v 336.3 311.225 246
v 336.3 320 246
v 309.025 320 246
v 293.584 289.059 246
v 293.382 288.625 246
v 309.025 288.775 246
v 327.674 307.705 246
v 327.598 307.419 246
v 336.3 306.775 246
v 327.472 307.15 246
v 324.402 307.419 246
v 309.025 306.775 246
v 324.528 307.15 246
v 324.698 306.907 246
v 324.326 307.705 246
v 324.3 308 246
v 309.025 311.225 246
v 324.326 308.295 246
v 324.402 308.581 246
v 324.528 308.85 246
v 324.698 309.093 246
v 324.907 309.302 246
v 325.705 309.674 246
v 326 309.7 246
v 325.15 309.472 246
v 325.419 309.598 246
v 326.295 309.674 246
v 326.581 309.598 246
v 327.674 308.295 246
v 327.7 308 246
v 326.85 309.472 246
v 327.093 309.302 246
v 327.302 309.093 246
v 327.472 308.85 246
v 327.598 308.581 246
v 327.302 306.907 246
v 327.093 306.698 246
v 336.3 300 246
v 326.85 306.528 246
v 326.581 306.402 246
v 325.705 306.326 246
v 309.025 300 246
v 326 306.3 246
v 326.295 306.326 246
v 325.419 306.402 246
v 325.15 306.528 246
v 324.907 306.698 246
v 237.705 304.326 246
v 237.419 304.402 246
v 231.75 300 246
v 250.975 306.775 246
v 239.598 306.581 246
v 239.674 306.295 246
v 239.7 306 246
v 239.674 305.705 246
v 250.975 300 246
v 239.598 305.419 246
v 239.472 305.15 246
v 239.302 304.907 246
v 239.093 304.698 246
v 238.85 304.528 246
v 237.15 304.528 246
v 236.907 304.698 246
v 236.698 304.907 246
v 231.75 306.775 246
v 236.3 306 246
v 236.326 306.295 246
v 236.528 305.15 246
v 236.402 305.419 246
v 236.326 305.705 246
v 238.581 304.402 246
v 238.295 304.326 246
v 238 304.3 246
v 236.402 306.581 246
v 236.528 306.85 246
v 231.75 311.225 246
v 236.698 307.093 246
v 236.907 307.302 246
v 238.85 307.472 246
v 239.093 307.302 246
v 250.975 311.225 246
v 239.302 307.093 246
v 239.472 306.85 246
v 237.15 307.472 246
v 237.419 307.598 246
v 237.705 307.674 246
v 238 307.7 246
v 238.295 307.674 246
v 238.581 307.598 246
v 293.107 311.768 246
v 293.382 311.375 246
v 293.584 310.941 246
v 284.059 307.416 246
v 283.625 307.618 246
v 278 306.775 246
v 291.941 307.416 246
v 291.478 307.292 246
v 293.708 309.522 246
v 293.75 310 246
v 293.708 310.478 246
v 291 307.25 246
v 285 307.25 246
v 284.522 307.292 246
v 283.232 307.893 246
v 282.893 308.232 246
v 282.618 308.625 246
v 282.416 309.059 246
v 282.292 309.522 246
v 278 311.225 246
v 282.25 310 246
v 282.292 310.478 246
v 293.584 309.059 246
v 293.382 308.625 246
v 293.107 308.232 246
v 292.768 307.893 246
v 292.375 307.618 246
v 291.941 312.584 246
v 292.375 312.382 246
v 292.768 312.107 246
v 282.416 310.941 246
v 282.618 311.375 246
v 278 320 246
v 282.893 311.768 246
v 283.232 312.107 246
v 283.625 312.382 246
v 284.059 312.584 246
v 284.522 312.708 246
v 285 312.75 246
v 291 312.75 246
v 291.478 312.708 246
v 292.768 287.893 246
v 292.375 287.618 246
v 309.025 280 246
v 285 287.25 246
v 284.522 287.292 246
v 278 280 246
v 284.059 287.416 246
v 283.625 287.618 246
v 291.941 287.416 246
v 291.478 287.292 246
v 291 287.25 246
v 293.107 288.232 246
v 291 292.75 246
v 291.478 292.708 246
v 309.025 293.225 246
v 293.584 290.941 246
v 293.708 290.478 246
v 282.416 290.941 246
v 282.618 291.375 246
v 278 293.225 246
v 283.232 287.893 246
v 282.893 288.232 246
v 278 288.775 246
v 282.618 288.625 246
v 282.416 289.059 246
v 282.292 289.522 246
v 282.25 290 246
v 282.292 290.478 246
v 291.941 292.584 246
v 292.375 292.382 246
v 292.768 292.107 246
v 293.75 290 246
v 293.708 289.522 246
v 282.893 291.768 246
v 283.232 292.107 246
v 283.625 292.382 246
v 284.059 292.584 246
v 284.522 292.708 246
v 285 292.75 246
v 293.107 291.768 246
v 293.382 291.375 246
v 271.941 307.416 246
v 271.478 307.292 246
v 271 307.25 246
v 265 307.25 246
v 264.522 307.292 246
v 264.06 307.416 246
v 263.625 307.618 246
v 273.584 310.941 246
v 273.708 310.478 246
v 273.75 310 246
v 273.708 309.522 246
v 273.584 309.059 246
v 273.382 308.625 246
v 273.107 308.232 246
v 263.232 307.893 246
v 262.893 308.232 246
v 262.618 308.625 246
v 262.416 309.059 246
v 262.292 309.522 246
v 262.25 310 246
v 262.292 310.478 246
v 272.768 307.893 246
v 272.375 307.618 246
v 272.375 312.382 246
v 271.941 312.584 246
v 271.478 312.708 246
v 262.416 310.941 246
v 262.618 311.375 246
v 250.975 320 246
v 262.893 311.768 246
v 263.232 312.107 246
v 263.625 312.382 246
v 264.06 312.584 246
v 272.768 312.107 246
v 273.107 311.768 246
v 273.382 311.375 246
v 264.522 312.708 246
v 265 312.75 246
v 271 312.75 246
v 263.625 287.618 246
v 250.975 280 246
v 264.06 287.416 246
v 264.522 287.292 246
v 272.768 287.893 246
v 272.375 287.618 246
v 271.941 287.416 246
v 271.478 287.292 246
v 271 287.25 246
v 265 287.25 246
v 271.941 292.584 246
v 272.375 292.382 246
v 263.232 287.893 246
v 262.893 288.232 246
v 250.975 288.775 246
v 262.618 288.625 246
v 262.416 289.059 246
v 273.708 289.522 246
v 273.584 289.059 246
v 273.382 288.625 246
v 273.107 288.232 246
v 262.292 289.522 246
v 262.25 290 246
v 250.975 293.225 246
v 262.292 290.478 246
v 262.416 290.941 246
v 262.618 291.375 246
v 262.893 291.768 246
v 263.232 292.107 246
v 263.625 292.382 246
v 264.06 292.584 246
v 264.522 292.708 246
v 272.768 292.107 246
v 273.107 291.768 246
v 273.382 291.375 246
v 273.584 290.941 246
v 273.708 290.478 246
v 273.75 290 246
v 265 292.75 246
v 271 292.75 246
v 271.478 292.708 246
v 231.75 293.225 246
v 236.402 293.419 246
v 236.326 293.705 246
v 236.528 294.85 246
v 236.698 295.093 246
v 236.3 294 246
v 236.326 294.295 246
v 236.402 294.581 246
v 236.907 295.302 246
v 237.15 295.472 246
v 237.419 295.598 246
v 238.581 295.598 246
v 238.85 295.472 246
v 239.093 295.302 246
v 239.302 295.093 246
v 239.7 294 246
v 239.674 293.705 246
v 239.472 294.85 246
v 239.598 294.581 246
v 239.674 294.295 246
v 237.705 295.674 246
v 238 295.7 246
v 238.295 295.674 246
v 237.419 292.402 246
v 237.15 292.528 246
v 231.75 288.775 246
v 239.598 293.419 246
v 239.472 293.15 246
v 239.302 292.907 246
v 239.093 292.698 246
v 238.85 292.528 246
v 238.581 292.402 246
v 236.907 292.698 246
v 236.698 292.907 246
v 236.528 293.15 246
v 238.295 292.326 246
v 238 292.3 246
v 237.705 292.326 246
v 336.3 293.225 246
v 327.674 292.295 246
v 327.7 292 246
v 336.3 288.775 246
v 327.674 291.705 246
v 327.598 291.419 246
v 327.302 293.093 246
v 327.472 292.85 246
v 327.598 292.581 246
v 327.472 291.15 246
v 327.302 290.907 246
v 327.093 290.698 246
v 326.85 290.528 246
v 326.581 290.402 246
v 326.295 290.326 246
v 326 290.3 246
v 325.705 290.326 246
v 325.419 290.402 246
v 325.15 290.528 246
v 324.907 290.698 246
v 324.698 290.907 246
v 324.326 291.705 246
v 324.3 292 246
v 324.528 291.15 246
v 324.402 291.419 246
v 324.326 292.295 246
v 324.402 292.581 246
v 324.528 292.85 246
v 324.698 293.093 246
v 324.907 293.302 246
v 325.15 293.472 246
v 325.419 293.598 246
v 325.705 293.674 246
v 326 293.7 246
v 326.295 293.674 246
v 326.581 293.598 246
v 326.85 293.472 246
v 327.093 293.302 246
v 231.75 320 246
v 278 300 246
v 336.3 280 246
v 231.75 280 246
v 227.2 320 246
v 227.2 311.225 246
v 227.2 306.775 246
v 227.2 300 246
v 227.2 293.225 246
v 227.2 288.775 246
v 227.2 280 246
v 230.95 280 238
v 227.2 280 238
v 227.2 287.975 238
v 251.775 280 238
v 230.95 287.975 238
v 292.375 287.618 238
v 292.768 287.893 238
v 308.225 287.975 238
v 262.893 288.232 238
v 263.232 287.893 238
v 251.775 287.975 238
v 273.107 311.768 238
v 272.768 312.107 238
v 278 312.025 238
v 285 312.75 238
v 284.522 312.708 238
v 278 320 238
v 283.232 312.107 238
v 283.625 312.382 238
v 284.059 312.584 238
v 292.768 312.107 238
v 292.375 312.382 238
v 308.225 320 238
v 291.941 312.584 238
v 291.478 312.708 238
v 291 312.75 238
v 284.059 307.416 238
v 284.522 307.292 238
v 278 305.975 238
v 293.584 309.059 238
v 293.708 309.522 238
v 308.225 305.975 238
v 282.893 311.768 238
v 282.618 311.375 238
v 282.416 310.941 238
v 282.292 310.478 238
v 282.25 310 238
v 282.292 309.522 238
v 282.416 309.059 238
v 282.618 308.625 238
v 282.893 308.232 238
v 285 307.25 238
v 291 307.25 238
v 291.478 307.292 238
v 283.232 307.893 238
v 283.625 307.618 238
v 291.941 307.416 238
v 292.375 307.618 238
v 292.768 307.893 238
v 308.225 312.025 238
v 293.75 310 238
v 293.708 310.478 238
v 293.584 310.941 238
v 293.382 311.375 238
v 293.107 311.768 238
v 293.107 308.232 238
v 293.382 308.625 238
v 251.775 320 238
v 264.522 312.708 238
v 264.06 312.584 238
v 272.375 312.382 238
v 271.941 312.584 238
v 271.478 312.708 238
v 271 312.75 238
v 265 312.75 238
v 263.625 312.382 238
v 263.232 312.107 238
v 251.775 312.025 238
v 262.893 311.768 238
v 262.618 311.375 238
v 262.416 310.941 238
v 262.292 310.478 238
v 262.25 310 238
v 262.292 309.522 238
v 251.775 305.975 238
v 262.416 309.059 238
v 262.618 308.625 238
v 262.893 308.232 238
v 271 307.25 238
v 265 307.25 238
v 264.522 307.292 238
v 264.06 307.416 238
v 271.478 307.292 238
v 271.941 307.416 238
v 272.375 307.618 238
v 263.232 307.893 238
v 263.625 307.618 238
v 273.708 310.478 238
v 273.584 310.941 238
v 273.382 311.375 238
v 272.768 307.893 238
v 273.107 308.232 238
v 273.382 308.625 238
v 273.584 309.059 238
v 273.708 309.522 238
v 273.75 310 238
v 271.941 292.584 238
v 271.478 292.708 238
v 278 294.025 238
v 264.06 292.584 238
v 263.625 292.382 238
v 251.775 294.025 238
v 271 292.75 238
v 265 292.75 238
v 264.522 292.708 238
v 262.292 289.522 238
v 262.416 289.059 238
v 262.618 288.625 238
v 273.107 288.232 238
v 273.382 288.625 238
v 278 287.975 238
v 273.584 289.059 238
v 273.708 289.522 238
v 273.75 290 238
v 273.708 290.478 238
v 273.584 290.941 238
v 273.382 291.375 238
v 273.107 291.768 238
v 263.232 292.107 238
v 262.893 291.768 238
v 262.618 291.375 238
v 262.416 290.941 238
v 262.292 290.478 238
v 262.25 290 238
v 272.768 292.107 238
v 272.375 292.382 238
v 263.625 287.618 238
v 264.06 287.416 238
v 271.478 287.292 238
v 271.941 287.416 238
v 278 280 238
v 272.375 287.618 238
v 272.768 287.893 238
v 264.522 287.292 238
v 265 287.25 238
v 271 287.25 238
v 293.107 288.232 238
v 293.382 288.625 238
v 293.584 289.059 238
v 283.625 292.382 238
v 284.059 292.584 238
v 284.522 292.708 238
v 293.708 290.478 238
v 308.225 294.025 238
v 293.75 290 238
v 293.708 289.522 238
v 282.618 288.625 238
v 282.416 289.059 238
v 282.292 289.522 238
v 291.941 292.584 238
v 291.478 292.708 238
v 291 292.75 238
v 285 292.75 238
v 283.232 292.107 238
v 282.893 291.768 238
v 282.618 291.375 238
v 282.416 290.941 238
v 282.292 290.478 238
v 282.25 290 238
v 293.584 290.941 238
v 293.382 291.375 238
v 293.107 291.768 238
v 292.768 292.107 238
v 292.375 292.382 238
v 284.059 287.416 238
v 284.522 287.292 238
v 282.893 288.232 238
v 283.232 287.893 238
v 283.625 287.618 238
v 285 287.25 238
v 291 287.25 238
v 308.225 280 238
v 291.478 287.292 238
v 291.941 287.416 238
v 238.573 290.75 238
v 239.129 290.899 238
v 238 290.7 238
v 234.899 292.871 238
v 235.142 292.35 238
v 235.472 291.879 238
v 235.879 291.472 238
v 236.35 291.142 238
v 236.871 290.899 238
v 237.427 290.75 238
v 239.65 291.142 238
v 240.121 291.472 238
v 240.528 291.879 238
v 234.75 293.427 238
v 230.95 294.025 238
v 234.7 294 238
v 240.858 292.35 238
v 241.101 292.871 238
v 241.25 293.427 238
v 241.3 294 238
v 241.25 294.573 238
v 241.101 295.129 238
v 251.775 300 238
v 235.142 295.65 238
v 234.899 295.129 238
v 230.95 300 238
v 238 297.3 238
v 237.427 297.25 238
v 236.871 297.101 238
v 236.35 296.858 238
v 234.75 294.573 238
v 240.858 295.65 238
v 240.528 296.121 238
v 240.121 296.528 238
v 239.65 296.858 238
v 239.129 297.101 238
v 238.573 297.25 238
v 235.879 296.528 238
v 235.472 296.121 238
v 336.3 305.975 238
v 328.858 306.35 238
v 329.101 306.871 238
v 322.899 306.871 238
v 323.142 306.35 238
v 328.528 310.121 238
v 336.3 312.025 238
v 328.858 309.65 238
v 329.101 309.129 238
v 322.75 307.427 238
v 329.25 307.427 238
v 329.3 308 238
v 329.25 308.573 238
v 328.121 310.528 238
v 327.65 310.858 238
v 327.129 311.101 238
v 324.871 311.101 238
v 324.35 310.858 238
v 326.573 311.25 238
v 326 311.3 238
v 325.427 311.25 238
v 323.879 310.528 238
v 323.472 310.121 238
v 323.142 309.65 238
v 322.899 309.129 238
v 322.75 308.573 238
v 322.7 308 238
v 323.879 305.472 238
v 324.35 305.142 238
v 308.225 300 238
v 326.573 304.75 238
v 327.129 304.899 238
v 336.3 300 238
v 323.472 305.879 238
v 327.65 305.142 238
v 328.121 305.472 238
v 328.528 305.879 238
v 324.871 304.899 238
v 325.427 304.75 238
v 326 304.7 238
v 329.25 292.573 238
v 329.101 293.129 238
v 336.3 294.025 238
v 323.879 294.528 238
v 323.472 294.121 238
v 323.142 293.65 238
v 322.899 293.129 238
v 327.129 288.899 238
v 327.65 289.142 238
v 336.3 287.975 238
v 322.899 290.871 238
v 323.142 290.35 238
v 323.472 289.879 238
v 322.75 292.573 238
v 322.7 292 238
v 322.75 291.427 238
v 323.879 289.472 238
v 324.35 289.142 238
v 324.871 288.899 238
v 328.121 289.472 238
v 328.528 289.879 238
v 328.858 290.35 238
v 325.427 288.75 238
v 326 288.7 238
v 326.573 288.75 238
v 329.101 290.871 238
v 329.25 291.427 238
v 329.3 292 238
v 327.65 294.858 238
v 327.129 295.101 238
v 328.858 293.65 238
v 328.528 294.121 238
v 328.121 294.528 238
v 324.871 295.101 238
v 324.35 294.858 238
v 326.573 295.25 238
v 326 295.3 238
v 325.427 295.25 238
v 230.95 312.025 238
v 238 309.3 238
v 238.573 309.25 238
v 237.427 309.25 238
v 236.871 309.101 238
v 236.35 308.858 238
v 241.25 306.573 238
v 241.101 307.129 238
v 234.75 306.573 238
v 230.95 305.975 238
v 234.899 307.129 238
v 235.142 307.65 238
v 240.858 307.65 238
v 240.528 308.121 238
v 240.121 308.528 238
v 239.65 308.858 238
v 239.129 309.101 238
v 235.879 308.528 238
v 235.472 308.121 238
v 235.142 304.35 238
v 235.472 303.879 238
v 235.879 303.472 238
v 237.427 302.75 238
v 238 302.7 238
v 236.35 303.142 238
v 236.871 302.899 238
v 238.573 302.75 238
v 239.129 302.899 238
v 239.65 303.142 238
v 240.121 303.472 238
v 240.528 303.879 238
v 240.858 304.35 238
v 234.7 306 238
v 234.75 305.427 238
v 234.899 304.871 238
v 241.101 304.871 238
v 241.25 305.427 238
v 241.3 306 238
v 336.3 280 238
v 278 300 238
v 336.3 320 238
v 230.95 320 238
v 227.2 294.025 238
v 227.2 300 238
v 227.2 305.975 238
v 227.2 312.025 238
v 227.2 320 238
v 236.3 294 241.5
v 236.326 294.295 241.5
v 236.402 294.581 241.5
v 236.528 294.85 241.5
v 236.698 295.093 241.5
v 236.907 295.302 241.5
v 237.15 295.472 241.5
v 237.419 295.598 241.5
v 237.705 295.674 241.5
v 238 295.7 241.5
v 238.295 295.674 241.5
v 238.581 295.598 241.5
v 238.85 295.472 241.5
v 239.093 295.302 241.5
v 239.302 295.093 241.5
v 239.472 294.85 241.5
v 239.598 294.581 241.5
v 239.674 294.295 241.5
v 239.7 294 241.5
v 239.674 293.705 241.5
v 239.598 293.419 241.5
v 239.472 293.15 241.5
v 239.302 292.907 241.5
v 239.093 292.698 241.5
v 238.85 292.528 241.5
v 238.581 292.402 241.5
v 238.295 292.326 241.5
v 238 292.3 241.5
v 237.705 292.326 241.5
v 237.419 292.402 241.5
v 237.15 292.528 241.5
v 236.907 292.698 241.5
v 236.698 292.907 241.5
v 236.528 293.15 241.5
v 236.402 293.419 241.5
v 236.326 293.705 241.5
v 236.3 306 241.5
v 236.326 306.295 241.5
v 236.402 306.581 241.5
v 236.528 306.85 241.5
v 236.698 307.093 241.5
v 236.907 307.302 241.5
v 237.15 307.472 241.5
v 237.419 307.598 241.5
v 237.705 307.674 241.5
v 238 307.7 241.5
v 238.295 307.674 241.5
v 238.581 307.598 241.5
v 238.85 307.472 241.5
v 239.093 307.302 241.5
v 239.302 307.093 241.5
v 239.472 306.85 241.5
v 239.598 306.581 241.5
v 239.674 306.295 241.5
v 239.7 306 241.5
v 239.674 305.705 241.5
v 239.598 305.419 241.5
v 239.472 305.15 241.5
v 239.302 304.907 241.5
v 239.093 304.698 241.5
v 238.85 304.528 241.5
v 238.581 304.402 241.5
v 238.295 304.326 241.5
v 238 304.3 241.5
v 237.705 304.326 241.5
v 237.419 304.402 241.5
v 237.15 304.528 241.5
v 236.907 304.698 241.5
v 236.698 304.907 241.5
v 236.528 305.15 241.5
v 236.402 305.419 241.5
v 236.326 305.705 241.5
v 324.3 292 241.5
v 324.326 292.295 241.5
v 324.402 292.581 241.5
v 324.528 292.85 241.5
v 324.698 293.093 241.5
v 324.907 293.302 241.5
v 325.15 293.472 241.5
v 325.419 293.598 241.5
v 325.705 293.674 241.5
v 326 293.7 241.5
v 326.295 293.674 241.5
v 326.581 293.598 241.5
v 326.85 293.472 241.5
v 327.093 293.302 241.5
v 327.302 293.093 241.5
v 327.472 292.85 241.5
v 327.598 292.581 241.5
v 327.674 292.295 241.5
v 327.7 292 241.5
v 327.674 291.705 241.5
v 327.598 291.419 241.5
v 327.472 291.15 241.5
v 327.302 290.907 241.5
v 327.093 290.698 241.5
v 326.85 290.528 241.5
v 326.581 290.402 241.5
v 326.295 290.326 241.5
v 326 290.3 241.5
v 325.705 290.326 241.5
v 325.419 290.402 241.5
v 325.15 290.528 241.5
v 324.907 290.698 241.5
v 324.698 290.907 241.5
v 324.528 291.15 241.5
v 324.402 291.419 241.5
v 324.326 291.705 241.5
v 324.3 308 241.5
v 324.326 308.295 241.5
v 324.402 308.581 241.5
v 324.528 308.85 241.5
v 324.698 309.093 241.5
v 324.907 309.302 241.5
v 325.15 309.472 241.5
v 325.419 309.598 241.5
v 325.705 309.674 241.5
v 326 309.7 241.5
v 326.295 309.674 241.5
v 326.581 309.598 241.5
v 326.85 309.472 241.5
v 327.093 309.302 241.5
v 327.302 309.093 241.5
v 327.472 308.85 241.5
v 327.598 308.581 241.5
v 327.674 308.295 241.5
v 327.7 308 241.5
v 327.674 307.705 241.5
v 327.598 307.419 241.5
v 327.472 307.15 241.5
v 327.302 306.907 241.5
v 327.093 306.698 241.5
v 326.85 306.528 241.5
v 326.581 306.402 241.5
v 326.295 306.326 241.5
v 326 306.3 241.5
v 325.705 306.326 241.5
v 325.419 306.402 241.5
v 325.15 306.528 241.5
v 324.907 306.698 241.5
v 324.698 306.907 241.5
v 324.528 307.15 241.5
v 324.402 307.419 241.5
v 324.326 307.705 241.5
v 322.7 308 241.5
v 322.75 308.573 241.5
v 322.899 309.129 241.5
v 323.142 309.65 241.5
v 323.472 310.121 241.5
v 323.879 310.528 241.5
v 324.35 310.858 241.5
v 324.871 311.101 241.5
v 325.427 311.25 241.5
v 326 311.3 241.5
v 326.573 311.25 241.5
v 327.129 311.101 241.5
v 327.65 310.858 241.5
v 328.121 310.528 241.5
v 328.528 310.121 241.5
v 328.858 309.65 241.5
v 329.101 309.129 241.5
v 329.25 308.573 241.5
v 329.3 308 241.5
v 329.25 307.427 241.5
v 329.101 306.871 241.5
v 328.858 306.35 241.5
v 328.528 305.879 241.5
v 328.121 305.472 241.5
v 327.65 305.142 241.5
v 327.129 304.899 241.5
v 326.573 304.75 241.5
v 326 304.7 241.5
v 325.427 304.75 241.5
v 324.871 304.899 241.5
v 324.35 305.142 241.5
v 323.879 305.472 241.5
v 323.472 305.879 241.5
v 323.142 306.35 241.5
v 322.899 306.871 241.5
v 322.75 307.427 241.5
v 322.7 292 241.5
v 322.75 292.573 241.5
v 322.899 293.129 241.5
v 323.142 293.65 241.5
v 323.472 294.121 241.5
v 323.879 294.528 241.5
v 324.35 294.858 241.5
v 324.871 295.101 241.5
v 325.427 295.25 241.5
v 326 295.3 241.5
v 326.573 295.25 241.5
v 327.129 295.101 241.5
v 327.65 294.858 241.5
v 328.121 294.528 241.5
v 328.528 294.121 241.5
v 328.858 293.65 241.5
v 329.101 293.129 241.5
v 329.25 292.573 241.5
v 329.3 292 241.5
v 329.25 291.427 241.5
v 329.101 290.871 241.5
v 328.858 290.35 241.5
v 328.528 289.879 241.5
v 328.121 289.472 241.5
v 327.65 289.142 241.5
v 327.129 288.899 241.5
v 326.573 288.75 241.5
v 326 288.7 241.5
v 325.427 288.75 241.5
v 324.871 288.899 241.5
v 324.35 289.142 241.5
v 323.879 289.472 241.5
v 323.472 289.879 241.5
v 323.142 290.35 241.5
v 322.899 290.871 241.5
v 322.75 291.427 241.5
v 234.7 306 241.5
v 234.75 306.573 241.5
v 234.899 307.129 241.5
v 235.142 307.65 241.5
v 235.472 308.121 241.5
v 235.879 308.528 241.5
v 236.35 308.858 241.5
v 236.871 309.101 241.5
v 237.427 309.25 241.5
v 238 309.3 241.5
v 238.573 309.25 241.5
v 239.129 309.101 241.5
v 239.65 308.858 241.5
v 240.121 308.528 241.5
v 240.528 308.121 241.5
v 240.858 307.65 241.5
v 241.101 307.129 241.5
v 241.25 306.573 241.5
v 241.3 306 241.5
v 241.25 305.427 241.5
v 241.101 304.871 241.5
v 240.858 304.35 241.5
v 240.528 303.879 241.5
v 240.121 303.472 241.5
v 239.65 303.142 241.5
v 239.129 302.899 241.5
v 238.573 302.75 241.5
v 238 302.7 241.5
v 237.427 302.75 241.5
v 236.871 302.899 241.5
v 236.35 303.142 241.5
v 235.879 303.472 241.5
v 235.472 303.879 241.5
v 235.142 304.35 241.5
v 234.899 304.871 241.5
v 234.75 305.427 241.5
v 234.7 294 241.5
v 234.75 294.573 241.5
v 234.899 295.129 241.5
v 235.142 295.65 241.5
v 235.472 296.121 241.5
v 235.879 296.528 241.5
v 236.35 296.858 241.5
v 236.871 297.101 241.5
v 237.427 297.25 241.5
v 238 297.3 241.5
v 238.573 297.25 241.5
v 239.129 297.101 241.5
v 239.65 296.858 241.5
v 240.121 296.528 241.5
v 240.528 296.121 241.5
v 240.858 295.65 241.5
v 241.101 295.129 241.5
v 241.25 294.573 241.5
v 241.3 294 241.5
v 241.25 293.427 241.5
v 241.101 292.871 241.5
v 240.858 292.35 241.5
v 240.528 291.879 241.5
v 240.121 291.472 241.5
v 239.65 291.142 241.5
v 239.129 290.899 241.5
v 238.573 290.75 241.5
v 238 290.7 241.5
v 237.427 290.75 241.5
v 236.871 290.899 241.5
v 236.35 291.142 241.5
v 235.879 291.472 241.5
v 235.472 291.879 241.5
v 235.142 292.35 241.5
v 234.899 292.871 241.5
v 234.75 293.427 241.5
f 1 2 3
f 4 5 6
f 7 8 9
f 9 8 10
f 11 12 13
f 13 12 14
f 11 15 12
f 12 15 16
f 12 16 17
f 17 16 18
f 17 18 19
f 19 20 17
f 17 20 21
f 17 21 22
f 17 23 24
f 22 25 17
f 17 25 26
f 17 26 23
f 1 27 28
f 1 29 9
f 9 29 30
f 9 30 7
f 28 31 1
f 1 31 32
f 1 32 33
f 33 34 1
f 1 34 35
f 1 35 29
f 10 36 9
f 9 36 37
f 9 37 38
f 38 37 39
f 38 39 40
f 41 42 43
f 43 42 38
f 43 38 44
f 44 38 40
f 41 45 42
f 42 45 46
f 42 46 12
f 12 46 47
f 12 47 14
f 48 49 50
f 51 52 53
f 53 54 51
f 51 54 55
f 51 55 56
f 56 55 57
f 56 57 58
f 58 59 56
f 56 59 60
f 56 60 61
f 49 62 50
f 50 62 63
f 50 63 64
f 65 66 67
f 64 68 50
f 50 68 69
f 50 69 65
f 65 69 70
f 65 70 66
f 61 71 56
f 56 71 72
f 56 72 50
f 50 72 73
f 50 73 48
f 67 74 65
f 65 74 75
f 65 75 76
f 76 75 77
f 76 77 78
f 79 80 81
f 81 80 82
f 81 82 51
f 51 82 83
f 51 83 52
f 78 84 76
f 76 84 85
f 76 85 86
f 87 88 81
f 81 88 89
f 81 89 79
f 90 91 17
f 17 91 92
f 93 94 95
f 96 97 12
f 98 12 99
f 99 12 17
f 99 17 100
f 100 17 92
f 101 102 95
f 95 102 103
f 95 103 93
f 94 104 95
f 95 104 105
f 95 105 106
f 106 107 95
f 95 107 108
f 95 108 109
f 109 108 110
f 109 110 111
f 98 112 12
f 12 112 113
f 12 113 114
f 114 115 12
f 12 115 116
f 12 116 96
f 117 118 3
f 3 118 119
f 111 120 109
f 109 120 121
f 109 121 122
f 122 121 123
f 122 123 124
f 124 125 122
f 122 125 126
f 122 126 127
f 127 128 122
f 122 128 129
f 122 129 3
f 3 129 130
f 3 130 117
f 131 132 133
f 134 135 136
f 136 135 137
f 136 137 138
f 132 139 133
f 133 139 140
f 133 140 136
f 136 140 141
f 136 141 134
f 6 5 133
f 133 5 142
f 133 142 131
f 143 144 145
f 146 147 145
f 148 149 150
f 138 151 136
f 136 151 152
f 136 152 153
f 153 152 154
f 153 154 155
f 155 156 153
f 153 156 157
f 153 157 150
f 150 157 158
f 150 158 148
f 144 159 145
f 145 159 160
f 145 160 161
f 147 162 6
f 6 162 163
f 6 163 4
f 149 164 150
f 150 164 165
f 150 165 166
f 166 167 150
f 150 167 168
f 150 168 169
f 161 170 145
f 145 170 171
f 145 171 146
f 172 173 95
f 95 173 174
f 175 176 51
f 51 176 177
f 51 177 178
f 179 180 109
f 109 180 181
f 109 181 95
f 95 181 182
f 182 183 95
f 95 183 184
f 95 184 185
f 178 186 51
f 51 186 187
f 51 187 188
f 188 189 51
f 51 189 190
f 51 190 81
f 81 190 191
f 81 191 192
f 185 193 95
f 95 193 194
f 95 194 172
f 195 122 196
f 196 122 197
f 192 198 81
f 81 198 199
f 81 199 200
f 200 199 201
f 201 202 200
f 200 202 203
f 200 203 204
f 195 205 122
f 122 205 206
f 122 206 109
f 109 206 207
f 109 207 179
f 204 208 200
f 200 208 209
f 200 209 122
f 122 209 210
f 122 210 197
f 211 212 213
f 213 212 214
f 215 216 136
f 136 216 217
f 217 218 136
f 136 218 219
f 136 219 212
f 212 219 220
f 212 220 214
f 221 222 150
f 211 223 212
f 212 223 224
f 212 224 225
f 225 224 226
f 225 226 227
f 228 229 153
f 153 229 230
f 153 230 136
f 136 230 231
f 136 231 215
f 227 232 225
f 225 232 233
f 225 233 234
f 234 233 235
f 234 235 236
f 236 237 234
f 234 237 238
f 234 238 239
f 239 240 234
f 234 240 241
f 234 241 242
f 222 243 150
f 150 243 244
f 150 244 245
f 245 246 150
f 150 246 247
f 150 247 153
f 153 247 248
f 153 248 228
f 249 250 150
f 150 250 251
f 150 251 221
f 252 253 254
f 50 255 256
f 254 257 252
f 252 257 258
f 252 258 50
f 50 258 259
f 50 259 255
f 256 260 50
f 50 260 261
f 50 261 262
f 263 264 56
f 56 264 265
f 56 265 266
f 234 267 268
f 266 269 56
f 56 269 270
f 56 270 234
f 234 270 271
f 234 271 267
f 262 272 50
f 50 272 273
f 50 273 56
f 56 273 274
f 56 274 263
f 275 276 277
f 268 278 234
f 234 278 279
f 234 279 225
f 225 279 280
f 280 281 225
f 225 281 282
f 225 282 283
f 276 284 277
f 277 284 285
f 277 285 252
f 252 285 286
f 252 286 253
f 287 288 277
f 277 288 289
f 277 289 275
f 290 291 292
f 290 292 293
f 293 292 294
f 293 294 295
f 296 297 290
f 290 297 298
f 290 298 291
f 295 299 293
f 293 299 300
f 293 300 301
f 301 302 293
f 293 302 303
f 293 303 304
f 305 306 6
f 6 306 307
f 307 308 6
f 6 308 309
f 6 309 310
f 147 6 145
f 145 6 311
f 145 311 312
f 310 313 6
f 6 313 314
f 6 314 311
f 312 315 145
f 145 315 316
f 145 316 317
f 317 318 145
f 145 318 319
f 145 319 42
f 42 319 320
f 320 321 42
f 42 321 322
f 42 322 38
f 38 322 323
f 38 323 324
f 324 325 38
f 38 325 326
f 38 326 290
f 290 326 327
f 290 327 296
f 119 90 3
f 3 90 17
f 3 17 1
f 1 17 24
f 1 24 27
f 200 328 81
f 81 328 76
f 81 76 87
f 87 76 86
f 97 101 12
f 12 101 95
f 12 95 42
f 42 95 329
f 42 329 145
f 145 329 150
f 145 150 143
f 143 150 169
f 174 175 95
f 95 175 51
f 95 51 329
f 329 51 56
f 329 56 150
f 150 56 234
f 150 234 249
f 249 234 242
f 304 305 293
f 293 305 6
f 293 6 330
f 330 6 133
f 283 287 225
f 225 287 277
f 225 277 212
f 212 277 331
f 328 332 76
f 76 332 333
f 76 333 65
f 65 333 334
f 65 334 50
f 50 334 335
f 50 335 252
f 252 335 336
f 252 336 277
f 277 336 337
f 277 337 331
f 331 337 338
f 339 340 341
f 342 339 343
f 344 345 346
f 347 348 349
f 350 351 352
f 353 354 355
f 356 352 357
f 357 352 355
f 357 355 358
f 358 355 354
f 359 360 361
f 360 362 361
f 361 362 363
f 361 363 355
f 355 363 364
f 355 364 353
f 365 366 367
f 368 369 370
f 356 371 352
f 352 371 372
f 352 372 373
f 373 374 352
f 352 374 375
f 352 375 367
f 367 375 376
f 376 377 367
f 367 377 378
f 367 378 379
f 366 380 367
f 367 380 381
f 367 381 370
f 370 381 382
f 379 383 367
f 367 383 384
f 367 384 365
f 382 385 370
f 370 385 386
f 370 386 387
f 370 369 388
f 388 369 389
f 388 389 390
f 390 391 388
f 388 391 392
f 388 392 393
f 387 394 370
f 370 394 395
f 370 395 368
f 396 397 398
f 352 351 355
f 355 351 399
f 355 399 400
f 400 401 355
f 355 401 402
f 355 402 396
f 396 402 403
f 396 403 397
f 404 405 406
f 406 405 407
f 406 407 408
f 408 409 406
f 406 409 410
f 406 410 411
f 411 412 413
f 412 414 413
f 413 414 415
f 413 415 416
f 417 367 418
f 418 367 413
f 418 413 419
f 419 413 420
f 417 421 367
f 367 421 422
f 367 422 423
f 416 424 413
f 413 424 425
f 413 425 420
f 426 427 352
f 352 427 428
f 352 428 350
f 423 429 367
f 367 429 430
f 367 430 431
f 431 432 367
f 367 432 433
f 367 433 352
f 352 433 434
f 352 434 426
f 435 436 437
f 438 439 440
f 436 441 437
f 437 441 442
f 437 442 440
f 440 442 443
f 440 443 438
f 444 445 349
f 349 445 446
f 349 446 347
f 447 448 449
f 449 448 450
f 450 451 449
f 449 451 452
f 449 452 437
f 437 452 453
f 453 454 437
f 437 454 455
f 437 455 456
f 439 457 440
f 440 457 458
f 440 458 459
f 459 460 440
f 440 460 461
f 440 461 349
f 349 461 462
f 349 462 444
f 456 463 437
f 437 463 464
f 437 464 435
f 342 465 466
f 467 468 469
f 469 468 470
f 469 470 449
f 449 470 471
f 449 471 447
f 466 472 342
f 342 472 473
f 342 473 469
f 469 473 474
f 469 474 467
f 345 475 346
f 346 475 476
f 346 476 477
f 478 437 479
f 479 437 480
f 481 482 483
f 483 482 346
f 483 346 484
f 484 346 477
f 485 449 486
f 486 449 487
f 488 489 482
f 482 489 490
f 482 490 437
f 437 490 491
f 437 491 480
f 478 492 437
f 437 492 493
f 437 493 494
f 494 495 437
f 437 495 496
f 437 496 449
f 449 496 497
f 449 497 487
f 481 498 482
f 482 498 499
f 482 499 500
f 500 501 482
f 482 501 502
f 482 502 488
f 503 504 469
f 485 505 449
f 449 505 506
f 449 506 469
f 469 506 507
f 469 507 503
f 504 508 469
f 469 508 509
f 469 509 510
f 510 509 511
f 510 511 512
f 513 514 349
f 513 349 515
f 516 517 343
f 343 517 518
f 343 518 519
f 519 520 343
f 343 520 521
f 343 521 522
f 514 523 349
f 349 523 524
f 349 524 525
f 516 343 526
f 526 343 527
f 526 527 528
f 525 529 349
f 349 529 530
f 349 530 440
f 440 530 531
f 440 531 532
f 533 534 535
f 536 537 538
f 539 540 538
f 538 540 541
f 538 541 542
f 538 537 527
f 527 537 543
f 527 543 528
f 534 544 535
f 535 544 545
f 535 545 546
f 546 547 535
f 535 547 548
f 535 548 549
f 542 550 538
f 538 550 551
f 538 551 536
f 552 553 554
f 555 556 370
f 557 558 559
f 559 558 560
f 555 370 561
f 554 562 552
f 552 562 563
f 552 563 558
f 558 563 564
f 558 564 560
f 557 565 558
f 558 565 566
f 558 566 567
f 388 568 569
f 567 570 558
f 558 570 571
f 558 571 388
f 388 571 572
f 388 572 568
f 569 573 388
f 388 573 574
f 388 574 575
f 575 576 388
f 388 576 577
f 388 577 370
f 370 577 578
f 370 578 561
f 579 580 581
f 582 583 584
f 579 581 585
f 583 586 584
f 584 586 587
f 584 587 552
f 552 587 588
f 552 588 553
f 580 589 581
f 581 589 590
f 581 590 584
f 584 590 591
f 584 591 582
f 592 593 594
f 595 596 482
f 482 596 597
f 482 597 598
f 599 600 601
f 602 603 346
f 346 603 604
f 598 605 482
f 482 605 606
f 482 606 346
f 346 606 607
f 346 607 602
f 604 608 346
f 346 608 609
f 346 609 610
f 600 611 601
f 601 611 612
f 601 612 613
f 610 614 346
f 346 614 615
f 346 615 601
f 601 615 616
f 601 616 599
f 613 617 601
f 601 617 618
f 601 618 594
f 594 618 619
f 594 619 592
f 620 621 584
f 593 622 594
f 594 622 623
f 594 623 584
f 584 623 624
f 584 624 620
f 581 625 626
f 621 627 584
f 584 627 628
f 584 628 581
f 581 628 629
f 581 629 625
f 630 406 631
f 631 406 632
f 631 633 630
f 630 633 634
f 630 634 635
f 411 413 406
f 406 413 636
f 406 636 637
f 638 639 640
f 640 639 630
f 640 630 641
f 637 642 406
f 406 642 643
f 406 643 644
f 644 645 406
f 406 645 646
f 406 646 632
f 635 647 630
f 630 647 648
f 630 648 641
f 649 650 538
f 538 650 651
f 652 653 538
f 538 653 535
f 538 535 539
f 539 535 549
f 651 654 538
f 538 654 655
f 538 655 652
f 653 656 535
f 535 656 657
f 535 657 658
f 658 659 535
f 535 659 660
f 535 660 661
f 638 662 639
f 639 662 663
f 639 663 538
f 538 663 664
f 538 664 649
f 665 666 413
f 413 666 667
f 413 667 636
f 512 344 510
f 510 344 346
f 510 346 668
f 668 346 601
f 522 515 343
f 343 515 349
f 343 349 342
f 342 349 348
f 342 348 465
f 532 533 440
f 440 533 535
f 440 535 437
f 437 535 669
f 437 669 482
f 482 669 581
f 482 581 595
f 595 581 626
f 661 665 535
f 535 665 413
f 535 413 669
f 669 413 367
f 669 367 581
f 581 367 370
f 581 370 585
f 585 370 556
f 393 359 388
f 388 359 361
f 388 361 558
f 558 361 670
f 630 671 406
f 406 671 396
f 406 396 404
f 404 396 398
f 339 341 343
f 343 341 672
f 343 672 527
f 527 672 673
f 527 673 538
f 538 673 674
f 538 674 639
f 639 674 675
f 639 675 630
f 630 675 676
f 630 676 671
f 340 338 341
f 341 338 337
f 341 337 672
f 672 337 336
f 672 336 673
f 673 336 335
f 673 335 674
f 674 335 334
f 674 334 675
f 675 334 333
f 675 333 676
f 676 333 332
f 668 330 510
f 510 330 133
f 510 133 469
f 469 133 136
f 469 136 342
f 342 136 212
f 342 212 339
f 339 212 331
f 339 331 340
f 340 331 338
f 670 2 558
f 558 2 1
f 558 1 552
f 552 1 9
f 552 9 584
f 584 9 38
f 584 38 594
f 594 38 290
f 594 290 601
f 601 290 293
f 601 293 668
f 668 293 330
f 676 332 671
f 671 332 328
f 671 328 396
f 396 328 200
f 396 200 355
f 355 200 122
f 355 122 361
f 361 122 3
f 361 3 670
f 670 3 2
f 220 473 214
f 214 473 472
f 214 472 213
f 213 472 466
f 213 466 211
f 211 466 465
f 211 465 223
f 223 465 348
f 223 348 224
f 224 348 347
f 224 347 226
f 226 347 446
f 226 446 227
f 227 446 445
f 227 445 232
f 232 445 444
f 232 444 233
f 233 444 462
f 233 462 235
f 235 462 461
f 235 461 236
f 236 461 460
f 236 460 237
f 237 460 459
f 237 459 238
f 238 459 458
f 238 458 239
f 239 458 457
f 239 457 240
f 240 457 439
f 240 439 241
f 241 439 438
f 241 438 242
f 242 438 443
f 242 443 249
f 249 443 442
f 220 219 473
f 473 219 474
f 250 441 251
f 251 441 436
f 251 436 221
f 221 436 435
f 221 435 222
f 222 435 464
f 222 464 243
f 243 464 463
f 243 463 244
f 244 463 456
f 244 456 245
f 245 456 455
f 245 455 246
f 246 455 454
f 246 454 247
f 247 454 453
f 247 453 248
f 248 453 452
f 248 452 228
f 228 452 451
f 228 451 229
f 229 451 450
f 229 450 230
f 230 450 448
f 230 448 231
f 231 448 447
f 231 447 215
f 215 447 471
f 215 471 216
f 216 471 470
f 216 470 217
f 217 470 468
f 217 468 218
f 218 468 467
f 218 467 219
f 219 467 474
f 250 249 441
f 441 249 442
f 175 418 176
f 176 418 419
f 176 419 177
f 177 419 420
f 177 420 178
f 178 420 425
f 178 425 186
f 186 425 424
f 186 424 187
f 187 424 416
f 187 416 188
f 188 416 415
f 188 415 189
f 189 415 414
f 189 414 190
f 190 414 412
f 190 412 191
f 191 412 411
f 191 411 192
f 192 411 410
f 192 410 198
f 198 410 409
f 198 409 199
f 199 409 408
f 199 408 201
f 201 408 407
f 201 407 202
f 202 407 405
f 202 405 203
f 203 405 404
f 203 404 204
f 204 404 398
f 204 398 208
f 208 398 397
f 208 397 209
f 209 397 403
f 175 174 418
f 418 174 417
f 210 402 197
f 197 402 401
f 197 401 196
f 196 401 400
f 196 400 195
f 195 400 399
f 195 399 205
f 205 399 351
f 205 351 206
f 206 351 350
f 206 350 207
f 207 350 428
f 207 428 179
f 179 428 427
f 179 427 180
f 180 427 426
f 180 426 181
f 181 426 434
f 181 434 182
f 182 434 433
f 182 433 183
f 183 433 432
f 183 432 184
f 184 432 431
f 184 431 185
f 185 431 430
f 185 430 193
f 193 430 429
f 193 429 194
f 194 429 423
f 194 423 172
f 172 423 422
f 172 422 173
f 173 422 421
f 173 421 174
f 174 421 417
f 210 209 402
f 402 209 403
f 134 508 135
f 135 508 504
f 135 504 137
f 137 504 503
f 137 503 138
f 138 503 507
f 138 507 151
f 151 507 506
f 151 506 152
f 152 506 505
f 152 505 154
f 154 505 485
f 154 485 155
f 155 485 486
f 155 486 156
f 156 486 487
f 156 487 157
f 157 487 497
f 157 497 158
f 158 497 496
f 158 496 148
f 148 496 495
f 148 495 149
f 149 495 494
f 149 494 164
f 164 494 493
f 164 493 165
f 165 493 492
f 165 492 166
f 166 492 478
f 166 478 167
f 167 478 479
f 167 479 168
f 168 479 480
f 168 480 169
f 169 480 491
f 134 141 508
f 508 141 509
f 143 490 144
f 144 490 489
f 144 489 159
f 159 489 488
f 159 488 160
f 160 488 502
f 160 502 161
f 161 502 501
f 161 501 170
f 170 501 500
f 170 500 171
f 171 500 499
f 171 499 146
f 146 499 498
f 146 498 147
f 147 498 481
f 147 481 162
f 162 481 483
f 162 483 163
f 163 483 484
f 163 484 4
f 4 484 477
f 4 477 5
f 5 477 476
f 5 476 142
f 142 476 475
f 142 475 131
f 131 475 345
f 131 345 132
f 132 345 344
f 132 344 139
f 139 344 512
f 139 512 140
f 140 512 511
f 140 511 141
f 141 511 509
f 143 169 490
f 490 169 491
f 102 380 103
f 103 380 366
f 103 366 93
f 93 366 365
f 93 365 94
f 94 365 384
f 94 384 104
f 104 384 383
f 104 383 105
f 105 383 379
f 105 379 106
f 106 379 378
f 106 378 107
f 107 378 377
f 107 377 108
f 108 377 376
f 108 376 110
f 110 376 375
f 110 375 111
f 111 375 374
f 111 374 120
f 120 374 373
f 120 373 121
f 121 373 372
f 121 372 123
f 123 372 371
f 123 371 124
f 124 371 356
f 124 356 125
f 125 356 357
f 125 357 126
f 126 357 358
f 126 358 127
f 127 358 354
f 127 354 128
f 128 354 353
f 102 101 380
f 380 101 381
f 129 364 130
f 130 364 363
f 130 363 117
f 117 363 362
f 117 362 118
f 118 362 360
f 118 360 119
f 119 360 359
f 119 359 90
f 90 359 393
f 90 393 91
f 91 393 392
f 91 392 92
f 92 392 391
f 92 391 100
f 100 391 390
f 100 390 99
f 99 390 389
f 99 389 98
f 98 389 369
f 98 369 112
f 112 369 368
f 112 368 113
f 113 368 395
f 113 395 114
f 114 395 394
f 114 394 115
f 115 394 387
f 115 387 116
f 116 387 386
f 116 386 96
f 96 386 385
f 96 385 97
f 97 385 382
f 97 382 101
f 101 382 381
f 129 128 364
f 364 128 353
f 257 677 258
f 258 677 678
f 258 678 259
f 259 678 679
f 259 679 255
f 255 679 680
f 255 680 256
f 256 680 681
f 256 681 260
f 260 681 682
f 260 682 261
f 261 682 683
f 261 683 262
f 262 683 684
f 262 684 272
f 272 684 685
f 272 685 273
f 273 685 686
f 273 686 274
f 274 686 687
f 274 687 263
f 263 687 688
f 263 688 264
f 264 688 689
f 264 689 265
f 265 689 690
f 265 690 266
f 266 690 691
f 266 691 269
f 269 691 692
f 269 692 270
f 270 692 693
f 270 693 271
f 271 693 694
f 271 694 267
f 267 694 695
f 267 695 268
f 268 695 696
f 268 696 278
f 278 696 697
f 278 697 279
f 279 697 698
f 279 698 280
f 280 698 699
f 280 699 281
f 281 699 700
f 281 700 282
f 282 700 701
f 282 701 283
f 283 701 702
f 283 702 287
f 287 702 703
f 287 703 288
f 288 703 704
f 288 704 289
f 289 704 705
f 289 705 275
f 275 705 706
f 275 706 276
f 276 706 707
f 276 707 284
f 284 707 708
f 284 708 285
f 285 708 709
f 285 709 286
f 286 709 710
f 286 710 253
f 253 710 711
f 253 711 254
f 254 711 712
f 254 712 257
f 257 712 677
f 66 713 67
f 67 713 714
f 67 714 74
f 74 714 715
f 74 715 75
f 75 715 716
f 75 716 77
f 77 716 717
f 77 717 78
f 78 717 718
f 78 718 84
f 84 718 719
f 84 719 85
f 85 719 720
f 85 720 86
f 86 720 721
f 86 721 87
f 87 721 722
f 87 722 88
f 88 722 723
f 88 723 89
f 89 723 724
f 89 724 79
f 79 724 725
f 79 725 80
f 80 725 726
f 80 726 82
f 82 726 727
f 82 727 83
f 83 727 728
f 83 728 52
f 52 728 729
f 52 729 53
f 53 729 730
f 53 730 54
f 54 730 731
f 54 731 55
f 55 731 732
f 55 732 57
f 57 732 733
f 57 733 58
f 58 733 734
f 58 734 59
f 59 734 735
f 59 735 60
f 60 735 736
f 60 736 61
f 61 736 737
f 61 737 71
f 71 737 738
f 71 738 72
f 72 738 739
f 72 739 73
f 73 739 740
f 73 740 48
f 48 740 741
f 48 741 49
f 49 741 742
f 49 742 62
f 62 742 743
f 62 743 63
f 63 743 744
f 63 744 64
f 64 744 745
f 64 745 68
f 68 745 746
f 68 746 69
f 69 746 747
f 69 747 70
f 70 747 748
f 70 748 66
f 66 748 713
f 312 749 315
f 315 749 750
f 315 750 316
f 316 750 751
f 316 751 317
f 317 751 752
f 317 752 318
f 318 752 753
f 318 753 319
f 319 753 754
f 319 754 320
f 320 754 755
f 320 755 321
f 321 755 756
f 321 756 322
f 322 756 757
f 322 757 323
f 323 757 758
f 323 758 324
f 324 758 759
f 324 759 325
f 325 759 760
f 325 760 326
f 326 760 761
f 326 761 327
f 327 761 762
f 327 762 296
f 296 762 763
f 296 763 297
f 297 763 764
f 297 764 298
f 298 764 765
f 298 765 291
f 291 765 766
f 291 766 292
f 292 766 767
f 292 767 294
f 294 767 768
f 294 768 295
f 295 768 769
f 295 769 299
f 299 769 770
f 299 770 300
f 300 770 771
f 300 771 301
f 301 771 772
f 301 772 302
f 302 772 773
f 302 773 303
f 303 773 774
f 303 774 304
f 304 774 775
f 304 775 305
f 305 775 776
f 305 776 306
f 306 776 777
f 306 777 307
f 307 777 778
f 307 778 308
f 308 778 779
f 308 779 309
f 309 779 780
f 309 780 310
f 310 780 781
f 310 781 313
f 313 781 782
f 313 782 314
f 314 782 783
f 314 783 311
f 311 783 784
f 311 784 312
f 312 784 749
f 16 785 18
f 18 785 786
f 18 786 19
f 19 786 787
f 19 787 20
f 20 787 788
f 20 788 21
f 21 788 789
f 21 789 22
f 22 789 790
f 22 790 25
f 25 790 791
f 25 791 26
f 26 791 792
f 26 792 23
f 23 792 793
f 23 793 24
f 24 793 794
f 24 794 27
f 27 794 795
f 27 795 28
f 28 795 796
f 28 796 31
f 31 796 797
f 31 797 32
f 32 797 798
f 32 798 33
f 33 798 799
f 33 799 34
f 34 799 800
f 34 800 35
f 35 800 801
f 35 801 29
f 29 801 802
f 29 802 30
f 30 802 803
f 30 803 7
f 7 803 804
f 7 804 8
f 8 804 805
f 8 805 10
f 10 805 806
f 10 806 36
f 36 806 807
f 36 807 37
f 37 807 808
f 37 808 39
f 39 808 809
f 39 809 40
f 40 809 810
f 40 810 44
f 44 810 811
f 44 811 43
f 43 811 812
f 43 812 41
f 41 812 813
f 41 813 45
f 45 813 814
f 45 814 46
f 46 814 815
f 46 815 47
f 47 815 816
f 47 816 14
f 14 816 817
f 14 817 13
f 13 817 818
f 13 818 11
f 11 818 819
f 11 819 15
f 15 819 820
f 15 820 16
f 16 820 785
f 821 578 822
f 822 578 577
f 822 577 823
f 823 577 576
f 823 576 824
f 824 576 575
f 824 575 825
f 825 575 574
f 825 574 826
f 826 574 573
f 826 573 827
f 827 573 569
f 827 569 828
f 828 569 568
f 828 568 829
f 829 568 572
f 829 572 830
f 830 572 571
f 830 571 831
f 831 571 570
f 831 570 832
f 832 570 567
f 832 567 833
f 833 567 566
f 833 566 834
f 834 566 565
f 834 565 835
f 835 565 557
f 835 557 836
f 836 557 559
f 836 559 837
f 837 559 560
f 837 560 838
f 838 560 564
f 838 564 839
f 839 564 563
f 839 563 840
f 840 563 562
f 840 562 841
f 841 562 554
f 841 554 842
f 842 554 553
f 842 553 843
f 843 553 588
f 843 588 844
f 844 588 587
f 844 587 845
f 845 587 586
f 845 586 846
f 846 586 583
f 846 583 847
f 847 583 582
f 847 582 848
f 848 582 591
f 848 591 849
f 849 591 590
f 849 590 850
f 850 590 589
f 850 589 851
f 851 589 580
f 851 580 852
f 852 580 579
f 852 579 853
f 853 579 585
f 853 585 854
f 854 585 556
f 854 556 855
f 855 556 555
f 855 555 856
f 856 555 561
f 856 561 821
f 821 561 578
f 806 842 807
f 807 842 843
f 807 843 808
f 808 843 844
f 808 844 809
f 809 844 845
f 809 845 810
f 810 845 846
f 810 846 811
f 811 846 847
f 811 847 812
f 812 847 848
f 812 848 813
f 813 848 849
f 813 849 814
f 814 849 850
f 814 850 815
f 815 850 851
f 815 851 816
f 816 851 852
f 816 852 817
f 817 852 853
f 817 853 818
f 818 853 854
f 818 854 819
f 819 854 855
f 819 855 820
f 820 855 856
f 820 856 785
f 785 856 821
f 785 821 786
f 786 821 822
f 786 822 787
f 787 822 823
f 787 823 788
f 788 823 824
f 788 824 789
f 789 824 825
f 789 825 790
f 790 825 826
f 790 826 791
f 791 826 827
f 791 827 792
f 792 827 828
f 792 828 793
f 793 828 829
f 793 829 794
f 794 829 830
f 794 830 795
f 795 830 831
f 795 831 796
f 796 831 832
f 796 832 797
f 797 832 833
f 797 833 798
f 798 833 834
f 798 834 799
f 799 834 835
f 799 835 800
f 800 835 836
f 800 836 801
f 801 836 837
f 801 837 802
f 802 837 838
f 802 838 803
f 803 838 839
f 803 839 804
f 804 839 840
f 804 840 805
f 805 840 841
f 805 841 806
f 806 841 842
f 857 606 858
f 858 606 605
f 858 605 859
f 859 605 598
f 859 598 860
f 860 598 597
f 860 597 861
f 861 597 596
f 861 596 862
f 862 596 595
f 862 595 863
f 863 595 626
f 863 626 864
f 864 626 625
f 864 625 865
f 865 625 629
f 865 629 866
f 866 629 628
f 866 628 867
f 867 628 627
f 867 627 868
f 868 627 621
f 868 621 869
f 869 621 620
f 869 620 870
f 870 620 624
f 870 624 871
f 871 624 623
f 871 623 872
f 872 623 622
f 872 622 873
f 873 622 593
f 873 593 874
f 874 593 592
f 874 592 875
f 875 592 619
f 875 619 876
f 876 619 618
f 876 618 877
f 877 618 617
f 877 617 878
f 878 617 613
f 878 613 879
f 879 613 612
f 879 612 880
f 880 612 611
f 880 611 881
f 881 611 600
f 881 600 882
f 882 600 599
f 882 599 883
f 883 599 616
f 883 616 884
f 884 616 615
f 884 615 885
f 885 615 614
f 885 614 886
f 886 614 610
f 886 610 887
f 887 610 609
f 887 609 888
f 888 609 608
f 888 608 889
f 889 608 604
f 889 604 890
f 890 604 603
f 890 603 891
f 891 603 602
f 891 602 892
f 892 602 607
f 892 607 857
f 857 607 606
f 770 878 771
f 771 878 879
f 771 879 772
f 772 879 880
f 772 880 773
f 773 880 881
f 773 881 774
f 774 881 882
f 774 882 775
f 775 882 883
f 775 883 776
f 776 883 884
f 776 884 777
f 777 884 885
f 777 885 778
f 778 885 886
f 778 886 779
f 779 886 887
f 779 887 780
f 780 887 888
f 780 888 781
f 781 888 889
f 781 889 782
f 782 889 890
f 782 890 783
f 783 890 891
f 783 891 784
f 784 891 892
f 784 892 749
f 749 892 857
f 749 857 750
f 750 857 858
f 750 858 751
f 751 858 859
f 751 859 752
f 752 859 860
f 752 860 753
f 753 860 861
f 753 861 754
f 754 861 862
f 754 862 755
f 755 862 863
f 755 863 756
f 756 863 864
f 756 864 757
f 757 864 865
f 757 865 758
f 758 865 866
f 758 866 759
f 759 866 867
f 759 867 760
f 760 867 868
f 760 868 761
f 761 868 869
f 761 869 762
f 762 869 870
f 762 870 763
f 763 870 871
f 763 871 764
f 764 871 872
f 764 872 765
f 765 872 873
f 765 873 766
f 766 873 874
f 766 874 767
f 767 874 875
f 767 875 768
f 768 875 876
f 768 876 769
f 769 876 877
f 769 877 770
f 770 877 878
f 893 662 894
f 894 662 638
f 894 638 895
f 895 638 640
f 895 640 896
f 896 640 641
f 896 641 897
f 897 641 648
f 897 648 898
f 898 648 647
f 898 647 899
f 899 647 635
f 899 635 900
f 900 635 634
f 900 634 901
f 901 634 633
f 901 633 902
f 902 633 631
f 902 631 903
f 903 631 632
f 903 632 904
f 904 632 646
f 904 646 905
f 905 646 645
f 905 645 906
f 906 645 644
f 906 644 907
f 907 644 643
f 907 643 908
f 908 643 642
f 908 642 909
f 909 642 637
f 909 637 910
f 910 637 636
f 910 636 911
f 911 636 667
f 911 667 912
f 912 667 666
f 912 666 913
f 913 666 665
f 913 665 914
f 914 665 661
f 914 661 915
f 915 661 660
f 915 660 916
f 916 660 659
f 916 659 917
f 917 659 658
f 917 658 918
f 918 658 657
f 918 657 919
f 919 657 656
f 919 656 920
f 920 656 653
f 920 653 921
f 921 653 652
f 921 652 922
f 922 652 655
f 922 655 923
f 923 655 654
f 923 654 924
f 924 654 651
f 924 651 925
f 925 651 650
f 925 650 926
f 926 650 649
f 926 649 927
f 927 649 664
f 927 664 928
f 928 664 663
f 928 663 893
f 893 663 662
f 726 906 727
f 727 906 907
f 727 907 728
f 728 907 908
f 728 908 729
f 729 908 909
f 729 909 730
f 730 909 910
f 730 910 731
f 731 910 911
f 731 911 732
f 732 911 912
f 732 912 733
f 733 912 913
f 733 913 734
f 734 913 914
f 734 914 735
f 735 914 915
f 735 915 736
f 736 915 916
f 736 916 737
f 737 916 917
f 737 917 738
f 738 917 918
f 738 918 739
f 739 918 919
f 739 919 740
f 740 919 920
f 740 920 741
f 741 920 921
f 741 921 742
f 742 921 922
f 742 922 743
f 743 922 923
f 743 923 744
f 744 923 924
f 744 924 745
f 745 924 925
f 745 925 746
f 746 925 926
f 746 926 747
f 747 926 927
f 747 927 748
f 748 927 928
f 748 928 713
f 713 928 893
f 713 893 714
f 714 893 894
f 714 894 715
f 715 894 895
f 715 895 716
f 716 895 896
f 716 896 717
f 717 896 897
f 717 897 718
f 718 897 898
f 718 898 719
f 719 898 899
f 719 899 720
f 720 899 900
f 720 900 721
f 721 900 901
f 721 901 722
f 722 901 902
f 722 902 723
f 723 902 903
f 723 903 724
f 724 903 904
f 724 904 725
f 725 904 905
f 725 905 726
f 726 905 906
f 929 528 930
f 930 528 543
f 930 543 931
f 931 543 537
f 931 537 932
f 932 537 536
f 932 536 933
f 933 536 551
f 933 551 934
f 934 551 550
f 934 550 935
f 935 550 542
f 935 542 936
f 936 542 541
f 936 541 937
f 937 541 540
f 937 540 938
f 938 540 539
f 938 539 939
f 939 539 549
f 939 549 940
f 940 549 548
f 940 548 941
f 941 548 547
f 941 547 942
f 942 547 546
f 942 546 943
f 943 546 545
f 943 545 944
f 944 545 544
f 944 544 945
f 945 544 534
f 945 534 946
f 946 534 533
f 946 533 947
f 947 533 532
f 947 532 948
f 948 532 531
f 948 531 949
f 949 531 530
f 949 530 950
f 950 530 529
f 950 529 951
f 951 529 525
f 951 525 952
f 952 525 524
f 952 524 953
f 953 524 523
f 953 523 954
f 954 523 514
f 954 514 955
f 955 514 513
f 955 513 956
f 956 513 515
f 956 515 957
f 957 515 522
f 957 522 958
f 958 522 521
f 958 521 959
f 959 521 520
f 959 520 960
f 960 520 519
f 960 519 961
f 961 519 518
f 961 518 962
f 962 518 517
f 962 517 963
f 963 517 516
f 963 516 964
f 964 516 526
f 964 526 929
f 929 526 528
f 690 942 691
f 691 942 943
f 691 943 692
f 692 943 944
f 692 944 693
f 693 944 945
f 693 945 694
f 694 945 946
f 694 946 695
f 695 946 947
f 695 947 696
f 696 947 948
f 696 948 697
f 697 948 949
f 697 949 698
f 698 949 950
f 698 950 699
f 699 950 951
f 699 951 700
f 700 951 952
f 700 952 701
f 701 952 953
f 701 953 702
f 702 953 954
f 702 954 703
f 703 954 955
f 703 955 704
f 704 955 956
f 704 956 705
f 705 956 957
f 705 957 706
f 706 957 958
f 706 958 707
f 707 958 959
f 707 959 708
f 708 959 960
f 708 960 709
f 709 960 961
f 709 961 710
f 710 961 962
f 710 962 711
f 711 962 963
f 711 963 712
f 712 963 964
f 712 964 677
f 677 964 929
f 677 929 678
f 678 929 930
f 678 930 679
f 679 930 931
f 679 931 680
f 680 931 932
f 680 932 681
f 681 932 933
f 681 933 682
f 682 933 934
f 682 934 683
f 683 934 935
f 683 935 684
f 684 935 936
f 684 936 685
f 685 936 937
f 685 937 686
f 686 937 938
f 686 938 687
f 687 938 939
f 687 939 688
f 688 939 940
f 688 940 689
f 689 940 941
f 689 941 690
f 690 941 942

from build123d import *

# Parameters (mm, degrees)
SKETCH1_W           = 109.1
SKETCH1_H           = 40
SKETCH1_R           = 1.7
BOSS_EXTRUDE1_DEPTH = 8
SKETCH2_R           = 3.3
CUT_EXTRUDE1_DEPTH  = 3.5


with BuildPart() as part:
    # Sketch1 → Boss-Extrude1 (new body)
    with BuildSketch(Plane.XY.offset(238)):
        with Locations((281.75, 300)):
            Rectangle(SKETCH1_W, SKETCH1_H)
        with Locations((238, 294)):
            Circle(SKETCH1_R, mode=Mode.SUBTRACT)
        with Locations((238, 306)):
            Circle(SKETCH1_R, mode=Mode.SUBTRACT)
        with Locations((326, 292)):
            Circle(SKETCH1_R, mode=Mode.SUBTRACT)
        with Locations((326, 308)):
            Circle(SKETCH1_R, mode=Mode.SUBTRACT)
        with BuildLine():
            Line((265, 287.25), (271, 287.25))
            ThreePointArc((271, 287.25), (273.75, 290), (271, 292.75))
            Line((271, 292.75), (265, 292.75))
            ThreePointArc((265, 292.75), (262.25, 290), (265, 287.25))
        make_face(mode=Mode.SUBTRACT)
        with BuildLine():
            Line((265, 307.25), (271, 307.25))
            ThreePointArc((271, 307.25), (273.75, 310), (271, 312.75))
            Line((271, 312.75), (265, 312.75))
            ThreePointArc((265, 312.75), (262.25, 310), (265, 307.25))
        make_face(mode=Mode.SUBTRACT)
        with BuildLine():
            Line((285, 287.25), (291, 287.25))
            ThreePointArc((291, 287.25), (293.75, 290), (291, 292.75))
            Line((291, 292.75), (285, 292.75))
            ThreePointArc((285, 292.75), (282.25, 290), (285, 287.25))
        make_face(mode=Mode.SUBTRACT)
        with BuildLine():
            Line((285, 307.25), (291, 307.25))
            ThreePointArc((291, 307.25), (293.75, 310), (291, 312.75))
            Line((291, 312.75), (285, 312.75))
            ThreePointArc((285, 312.75), (282.25, 310), (285, 307.25))
        make_face(mode=Mode.SUBTRACT)
    extrude(amount=BOSS_EXTRUDE1_DEPTH)

    # Sketch2 → Cut-Extrude1 (cut)
    with BuildSketch(Plane.XY.offset(238)):
        with Locations((238, 294)):
            Circle(SKETCH2_R)
        with Locations((238, 306)):
            Circle(SKETCH2_R)
        with Locations((326, 292)):
            Circle(SKETCH2_R)
        with Locations((326, 308)):
            Circle(SKETCH2_R)
    extrude(amount=CUT_EXTRUDE1_DEPTH, mode=Mode.SUBTRACT)


solid = part.part
